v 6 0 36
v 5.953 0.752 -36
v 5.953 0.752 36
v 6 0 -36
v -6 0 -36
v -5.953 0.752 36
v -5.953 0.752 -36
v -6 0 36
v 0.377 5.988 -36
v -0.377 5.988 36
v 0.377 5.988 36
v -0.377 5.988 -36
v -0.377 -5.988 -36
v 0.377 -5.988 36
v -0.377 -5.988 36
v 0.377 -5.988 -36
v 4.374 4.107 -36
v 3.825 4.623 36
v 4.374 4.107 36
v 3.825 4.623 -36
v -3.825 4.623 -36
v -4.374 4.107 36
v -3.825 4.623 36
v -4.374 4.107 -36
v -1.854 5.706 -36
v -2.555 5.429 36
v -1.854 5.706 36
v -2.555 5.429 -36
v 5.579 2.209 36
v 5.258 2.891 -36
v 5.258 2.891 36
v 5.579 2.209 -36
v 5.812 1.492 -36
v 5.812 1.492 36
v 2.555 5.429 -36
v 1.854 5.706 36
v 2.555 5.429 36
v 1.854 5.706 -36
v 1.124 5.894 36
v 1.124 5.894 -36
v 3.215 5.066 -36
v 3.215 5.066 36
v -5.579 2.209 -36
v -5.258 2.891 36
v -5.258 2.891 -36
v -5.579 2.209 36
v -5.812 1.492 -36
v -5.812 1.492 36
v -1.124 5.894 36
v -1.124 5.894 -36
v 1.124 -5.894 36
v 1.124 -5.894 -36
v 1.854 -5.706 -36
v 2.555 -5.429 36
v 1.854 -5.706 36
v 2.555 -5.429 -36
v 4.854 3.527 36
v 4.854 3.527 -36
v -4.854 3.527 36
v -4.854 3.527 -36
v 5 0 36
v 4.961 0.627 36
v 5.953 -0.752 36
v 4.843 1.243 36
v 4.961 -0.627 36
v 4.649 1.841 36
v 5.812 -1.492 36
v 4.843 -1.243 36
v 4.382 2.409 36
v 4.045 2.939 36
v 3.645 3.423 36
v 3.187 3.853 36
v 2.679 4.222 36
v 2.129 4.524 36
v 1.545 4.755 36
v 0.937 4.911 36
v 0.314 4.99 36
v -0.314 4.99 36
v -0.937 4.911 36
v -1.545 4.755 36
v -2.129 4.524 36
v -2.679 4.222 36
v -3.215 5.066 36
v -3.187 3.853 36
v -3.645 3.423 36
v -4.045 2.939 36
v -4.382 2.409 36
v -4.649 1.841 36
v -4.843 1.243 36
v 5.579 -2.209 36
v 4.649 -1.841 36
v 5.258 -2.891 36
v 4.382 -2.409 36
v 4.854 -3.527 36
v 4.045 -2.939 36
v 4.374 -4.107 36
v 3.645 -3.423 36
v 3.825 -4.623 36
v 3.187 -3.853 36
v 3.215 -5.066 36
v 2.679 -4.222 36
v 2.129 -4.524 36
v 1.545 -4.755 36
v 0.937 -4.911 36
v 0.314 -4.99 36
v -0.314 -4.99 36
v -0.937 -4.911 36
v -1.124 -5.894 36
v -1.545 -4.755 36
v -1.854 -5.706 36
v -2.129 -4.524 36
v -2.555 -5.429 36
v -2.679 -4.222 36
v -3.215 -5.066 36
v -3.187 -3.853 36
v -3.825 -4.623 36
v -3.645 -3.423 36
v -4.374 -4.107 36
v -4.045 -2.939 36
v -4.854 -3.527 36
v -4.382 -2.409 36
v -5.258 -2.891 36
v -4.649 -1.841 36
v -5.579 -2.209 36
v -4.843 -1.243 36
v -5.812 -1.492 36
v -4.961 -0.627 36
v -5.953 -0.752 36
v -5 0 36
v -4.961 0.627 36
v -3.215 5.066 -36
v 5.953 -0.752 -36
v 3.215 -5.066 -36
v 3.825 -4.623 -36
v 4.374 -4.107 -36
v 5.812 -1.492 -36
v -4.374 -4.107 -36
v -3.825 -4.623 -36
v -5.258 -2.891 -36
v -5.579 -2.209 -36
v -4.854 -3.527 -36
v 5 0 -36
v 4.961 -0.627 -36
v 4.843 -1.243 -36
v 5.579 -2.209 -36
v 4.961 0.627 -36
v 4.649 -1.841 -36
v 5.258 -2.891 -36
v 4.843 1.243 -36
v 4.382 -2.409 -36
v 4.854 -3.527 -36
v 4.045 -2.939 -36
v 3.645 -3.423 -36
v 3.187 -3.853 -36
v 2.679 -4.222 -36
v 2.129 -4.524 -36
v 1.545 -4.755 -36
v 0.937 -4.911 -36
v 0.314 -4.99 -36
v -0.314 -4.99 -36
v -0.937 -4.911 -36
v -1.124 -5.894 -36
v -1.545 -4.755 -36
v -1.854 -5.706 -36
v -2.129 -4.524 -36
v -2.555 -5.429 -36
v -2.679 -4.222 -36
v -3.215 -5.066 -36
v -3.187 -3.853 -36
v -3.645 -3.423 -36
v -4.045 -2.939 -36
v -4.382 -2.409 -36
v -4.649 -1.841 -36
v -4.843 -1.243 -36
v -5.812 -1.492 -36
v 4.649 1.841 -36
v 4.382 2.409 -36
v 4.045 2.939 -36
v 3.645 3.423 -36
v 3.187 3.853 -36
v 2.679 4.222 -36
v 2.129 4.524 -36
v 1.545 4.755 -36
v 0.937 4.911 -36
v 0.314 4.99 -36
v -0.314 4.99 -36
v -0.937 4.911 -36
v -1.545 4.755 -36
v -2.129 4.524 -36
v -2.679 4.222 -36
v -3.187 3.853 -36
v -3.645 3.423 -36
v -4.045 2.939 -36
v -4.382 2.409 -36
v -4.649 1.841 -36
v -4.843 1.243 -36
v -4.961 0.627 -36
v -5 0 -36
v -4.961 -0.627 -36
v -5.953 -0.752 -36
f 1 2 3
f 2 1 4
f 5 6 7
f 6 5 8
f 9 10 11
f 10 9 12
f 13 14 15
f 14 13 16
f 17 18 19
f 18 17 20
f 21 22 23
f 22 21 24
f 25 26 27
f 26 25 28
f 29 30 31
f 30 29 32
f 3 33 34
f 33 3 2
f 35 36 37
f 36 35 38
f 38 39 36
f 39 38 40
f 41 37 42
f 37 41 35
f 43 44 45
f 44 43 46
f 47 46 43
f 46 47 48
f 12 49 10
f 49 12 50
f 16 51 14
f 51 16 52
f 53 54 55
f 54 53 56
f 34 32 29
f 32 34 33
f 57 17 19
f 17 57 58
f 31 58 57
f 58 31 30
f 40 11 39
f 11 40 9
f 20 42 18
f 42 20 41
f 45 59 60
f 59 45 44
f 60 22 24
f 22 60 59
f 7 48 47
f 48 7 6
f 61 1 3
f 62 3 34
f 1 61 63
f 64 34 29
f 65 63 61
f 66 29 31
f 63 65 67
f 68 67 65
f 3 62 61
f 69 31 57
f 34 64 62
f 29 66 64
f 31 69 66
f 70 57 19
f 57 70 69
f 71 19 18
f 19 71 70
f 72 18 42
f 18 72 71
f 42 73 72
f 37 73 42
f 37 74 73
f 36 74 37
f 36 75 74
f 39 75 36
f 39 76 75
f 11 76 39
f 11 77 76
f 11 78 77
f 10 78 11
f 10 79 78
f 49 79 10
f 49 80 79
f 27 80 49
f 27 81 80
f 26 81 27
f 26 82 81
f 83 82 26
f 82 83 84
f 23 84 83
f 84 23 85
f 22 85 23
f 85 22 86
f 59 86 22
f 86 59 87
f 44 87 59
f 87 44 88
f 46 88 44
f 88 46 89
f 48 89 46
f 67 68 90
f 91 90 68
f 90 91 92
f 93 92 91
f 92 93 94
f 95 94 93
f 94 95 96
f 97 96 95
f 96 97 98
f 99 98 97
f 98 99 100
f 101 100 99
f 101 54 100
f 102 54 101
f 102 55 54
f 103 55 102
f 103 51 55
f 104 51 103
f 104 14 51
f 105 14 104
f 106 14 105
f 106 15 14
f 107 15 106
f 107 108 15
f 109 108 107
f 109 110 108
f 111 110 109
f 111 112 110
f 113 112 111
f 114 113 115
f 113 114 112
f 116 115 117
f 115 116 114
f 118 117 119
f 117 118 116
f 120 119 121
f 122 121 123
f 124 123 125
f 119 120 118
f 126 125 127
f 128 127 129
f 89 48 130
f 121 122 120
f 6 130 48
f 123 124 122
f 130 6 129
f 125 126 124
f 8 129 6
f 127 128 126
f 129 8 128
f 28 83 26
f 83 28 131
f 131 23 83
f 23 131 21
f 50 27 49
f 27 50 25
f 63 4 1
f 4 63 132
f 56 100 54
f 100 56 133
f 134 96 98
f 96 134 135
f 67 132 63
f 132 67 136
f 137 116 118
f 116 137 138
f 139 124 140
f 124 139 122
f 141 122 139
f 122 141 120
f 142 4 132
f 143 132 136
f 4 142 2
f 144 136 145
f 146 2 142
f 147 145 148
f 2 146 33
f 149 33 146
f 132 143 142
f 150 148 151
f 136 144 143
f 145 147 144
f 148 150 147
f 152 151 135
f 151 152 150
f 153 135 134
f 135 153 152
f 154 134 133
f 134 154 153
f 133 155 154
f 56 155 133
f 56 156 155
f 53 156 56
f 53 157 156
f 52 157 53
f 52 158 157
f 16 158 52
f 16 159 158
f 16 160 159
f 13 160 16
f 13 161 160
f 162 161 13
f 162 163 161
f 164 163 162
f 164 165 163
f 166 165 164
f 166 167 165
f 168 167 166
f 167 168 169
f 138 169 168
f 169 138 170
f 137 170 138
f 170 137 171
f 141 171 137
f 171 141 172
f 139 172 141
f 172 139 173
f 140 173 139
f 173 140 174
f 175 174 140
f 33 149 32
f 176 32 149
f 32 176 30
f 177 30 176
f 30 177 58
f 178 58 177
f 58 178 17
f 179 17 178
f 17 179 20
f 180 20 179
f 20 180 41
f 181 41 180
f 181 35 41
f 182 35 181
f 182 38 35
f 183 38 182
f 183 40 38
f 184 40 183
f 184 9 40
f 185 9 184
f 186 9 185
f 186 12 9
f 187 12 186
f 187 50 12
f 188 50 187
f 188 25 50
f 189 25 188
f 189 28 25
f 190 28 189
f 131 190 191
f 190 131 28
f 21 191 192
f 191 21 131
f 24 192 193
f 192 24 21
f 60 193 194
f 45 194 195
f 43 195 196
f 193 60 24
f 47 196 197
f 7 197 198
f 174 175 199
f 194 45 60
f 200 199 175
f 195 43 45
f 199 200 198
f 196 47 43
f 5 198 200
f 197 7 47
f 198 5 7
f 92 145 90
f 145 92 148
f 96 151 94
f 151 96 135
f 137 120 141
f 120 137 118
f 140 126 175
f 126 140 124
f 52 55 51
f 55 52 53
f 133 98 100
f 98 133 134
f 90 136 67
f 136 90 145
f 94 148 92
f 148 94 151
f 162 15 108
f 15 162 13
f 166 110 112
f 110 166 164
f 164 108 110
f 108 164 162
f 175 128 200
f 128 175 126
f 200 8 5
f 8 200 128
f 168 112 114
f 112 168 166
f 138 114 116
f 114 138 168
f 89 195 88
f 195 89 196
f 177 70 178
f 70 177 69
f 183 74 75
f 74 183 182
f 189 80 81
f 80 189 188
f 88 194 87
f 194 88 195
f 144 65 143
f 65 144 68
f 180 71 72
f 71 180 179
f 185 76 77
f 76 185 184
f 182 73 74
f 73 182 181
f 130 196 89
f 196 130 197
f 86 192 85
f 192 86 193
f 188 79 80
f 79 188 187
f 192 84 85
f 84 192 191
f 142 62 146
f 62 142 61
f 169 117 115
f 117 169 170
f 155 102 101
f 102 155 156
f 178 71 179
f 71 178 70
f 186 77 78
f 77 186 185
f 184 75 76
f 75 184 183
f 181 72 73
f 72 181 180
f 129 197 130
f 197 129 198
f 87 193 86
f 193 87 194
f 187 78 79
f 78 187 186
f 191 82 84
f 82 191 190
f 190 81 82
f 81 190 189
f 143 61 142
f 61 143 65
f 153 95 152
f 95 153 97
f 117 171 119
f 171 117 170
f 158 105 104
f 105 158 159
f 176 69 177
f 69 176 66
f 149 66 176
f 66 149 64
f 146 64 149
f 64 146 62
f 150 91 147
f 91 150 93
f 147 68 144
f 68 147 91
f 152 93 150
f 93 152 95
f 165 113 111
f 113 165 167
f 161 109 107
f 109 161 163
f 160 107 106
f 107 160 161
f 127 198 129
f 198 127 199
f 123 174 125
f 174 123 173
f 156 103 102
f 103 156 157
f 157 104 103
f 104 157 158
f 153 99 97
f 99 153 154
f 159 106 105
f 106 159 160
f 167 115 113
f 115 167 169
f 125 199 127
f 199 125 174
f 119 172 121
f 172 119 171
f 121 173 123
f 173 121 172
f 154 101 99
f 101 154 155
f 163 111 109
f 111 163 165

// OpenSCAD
$fn = 50;


difference() {
	union() {
		translate(v = [0, 0, -36.0000000000]) {
			cylinder(h = 72, r = 6.0000000000);
		}
	}
	union() {
		translate(v = [0, 0, -100.0000000000]) {
			cylinder(h = 200, r = 5);
		}
	}
}
